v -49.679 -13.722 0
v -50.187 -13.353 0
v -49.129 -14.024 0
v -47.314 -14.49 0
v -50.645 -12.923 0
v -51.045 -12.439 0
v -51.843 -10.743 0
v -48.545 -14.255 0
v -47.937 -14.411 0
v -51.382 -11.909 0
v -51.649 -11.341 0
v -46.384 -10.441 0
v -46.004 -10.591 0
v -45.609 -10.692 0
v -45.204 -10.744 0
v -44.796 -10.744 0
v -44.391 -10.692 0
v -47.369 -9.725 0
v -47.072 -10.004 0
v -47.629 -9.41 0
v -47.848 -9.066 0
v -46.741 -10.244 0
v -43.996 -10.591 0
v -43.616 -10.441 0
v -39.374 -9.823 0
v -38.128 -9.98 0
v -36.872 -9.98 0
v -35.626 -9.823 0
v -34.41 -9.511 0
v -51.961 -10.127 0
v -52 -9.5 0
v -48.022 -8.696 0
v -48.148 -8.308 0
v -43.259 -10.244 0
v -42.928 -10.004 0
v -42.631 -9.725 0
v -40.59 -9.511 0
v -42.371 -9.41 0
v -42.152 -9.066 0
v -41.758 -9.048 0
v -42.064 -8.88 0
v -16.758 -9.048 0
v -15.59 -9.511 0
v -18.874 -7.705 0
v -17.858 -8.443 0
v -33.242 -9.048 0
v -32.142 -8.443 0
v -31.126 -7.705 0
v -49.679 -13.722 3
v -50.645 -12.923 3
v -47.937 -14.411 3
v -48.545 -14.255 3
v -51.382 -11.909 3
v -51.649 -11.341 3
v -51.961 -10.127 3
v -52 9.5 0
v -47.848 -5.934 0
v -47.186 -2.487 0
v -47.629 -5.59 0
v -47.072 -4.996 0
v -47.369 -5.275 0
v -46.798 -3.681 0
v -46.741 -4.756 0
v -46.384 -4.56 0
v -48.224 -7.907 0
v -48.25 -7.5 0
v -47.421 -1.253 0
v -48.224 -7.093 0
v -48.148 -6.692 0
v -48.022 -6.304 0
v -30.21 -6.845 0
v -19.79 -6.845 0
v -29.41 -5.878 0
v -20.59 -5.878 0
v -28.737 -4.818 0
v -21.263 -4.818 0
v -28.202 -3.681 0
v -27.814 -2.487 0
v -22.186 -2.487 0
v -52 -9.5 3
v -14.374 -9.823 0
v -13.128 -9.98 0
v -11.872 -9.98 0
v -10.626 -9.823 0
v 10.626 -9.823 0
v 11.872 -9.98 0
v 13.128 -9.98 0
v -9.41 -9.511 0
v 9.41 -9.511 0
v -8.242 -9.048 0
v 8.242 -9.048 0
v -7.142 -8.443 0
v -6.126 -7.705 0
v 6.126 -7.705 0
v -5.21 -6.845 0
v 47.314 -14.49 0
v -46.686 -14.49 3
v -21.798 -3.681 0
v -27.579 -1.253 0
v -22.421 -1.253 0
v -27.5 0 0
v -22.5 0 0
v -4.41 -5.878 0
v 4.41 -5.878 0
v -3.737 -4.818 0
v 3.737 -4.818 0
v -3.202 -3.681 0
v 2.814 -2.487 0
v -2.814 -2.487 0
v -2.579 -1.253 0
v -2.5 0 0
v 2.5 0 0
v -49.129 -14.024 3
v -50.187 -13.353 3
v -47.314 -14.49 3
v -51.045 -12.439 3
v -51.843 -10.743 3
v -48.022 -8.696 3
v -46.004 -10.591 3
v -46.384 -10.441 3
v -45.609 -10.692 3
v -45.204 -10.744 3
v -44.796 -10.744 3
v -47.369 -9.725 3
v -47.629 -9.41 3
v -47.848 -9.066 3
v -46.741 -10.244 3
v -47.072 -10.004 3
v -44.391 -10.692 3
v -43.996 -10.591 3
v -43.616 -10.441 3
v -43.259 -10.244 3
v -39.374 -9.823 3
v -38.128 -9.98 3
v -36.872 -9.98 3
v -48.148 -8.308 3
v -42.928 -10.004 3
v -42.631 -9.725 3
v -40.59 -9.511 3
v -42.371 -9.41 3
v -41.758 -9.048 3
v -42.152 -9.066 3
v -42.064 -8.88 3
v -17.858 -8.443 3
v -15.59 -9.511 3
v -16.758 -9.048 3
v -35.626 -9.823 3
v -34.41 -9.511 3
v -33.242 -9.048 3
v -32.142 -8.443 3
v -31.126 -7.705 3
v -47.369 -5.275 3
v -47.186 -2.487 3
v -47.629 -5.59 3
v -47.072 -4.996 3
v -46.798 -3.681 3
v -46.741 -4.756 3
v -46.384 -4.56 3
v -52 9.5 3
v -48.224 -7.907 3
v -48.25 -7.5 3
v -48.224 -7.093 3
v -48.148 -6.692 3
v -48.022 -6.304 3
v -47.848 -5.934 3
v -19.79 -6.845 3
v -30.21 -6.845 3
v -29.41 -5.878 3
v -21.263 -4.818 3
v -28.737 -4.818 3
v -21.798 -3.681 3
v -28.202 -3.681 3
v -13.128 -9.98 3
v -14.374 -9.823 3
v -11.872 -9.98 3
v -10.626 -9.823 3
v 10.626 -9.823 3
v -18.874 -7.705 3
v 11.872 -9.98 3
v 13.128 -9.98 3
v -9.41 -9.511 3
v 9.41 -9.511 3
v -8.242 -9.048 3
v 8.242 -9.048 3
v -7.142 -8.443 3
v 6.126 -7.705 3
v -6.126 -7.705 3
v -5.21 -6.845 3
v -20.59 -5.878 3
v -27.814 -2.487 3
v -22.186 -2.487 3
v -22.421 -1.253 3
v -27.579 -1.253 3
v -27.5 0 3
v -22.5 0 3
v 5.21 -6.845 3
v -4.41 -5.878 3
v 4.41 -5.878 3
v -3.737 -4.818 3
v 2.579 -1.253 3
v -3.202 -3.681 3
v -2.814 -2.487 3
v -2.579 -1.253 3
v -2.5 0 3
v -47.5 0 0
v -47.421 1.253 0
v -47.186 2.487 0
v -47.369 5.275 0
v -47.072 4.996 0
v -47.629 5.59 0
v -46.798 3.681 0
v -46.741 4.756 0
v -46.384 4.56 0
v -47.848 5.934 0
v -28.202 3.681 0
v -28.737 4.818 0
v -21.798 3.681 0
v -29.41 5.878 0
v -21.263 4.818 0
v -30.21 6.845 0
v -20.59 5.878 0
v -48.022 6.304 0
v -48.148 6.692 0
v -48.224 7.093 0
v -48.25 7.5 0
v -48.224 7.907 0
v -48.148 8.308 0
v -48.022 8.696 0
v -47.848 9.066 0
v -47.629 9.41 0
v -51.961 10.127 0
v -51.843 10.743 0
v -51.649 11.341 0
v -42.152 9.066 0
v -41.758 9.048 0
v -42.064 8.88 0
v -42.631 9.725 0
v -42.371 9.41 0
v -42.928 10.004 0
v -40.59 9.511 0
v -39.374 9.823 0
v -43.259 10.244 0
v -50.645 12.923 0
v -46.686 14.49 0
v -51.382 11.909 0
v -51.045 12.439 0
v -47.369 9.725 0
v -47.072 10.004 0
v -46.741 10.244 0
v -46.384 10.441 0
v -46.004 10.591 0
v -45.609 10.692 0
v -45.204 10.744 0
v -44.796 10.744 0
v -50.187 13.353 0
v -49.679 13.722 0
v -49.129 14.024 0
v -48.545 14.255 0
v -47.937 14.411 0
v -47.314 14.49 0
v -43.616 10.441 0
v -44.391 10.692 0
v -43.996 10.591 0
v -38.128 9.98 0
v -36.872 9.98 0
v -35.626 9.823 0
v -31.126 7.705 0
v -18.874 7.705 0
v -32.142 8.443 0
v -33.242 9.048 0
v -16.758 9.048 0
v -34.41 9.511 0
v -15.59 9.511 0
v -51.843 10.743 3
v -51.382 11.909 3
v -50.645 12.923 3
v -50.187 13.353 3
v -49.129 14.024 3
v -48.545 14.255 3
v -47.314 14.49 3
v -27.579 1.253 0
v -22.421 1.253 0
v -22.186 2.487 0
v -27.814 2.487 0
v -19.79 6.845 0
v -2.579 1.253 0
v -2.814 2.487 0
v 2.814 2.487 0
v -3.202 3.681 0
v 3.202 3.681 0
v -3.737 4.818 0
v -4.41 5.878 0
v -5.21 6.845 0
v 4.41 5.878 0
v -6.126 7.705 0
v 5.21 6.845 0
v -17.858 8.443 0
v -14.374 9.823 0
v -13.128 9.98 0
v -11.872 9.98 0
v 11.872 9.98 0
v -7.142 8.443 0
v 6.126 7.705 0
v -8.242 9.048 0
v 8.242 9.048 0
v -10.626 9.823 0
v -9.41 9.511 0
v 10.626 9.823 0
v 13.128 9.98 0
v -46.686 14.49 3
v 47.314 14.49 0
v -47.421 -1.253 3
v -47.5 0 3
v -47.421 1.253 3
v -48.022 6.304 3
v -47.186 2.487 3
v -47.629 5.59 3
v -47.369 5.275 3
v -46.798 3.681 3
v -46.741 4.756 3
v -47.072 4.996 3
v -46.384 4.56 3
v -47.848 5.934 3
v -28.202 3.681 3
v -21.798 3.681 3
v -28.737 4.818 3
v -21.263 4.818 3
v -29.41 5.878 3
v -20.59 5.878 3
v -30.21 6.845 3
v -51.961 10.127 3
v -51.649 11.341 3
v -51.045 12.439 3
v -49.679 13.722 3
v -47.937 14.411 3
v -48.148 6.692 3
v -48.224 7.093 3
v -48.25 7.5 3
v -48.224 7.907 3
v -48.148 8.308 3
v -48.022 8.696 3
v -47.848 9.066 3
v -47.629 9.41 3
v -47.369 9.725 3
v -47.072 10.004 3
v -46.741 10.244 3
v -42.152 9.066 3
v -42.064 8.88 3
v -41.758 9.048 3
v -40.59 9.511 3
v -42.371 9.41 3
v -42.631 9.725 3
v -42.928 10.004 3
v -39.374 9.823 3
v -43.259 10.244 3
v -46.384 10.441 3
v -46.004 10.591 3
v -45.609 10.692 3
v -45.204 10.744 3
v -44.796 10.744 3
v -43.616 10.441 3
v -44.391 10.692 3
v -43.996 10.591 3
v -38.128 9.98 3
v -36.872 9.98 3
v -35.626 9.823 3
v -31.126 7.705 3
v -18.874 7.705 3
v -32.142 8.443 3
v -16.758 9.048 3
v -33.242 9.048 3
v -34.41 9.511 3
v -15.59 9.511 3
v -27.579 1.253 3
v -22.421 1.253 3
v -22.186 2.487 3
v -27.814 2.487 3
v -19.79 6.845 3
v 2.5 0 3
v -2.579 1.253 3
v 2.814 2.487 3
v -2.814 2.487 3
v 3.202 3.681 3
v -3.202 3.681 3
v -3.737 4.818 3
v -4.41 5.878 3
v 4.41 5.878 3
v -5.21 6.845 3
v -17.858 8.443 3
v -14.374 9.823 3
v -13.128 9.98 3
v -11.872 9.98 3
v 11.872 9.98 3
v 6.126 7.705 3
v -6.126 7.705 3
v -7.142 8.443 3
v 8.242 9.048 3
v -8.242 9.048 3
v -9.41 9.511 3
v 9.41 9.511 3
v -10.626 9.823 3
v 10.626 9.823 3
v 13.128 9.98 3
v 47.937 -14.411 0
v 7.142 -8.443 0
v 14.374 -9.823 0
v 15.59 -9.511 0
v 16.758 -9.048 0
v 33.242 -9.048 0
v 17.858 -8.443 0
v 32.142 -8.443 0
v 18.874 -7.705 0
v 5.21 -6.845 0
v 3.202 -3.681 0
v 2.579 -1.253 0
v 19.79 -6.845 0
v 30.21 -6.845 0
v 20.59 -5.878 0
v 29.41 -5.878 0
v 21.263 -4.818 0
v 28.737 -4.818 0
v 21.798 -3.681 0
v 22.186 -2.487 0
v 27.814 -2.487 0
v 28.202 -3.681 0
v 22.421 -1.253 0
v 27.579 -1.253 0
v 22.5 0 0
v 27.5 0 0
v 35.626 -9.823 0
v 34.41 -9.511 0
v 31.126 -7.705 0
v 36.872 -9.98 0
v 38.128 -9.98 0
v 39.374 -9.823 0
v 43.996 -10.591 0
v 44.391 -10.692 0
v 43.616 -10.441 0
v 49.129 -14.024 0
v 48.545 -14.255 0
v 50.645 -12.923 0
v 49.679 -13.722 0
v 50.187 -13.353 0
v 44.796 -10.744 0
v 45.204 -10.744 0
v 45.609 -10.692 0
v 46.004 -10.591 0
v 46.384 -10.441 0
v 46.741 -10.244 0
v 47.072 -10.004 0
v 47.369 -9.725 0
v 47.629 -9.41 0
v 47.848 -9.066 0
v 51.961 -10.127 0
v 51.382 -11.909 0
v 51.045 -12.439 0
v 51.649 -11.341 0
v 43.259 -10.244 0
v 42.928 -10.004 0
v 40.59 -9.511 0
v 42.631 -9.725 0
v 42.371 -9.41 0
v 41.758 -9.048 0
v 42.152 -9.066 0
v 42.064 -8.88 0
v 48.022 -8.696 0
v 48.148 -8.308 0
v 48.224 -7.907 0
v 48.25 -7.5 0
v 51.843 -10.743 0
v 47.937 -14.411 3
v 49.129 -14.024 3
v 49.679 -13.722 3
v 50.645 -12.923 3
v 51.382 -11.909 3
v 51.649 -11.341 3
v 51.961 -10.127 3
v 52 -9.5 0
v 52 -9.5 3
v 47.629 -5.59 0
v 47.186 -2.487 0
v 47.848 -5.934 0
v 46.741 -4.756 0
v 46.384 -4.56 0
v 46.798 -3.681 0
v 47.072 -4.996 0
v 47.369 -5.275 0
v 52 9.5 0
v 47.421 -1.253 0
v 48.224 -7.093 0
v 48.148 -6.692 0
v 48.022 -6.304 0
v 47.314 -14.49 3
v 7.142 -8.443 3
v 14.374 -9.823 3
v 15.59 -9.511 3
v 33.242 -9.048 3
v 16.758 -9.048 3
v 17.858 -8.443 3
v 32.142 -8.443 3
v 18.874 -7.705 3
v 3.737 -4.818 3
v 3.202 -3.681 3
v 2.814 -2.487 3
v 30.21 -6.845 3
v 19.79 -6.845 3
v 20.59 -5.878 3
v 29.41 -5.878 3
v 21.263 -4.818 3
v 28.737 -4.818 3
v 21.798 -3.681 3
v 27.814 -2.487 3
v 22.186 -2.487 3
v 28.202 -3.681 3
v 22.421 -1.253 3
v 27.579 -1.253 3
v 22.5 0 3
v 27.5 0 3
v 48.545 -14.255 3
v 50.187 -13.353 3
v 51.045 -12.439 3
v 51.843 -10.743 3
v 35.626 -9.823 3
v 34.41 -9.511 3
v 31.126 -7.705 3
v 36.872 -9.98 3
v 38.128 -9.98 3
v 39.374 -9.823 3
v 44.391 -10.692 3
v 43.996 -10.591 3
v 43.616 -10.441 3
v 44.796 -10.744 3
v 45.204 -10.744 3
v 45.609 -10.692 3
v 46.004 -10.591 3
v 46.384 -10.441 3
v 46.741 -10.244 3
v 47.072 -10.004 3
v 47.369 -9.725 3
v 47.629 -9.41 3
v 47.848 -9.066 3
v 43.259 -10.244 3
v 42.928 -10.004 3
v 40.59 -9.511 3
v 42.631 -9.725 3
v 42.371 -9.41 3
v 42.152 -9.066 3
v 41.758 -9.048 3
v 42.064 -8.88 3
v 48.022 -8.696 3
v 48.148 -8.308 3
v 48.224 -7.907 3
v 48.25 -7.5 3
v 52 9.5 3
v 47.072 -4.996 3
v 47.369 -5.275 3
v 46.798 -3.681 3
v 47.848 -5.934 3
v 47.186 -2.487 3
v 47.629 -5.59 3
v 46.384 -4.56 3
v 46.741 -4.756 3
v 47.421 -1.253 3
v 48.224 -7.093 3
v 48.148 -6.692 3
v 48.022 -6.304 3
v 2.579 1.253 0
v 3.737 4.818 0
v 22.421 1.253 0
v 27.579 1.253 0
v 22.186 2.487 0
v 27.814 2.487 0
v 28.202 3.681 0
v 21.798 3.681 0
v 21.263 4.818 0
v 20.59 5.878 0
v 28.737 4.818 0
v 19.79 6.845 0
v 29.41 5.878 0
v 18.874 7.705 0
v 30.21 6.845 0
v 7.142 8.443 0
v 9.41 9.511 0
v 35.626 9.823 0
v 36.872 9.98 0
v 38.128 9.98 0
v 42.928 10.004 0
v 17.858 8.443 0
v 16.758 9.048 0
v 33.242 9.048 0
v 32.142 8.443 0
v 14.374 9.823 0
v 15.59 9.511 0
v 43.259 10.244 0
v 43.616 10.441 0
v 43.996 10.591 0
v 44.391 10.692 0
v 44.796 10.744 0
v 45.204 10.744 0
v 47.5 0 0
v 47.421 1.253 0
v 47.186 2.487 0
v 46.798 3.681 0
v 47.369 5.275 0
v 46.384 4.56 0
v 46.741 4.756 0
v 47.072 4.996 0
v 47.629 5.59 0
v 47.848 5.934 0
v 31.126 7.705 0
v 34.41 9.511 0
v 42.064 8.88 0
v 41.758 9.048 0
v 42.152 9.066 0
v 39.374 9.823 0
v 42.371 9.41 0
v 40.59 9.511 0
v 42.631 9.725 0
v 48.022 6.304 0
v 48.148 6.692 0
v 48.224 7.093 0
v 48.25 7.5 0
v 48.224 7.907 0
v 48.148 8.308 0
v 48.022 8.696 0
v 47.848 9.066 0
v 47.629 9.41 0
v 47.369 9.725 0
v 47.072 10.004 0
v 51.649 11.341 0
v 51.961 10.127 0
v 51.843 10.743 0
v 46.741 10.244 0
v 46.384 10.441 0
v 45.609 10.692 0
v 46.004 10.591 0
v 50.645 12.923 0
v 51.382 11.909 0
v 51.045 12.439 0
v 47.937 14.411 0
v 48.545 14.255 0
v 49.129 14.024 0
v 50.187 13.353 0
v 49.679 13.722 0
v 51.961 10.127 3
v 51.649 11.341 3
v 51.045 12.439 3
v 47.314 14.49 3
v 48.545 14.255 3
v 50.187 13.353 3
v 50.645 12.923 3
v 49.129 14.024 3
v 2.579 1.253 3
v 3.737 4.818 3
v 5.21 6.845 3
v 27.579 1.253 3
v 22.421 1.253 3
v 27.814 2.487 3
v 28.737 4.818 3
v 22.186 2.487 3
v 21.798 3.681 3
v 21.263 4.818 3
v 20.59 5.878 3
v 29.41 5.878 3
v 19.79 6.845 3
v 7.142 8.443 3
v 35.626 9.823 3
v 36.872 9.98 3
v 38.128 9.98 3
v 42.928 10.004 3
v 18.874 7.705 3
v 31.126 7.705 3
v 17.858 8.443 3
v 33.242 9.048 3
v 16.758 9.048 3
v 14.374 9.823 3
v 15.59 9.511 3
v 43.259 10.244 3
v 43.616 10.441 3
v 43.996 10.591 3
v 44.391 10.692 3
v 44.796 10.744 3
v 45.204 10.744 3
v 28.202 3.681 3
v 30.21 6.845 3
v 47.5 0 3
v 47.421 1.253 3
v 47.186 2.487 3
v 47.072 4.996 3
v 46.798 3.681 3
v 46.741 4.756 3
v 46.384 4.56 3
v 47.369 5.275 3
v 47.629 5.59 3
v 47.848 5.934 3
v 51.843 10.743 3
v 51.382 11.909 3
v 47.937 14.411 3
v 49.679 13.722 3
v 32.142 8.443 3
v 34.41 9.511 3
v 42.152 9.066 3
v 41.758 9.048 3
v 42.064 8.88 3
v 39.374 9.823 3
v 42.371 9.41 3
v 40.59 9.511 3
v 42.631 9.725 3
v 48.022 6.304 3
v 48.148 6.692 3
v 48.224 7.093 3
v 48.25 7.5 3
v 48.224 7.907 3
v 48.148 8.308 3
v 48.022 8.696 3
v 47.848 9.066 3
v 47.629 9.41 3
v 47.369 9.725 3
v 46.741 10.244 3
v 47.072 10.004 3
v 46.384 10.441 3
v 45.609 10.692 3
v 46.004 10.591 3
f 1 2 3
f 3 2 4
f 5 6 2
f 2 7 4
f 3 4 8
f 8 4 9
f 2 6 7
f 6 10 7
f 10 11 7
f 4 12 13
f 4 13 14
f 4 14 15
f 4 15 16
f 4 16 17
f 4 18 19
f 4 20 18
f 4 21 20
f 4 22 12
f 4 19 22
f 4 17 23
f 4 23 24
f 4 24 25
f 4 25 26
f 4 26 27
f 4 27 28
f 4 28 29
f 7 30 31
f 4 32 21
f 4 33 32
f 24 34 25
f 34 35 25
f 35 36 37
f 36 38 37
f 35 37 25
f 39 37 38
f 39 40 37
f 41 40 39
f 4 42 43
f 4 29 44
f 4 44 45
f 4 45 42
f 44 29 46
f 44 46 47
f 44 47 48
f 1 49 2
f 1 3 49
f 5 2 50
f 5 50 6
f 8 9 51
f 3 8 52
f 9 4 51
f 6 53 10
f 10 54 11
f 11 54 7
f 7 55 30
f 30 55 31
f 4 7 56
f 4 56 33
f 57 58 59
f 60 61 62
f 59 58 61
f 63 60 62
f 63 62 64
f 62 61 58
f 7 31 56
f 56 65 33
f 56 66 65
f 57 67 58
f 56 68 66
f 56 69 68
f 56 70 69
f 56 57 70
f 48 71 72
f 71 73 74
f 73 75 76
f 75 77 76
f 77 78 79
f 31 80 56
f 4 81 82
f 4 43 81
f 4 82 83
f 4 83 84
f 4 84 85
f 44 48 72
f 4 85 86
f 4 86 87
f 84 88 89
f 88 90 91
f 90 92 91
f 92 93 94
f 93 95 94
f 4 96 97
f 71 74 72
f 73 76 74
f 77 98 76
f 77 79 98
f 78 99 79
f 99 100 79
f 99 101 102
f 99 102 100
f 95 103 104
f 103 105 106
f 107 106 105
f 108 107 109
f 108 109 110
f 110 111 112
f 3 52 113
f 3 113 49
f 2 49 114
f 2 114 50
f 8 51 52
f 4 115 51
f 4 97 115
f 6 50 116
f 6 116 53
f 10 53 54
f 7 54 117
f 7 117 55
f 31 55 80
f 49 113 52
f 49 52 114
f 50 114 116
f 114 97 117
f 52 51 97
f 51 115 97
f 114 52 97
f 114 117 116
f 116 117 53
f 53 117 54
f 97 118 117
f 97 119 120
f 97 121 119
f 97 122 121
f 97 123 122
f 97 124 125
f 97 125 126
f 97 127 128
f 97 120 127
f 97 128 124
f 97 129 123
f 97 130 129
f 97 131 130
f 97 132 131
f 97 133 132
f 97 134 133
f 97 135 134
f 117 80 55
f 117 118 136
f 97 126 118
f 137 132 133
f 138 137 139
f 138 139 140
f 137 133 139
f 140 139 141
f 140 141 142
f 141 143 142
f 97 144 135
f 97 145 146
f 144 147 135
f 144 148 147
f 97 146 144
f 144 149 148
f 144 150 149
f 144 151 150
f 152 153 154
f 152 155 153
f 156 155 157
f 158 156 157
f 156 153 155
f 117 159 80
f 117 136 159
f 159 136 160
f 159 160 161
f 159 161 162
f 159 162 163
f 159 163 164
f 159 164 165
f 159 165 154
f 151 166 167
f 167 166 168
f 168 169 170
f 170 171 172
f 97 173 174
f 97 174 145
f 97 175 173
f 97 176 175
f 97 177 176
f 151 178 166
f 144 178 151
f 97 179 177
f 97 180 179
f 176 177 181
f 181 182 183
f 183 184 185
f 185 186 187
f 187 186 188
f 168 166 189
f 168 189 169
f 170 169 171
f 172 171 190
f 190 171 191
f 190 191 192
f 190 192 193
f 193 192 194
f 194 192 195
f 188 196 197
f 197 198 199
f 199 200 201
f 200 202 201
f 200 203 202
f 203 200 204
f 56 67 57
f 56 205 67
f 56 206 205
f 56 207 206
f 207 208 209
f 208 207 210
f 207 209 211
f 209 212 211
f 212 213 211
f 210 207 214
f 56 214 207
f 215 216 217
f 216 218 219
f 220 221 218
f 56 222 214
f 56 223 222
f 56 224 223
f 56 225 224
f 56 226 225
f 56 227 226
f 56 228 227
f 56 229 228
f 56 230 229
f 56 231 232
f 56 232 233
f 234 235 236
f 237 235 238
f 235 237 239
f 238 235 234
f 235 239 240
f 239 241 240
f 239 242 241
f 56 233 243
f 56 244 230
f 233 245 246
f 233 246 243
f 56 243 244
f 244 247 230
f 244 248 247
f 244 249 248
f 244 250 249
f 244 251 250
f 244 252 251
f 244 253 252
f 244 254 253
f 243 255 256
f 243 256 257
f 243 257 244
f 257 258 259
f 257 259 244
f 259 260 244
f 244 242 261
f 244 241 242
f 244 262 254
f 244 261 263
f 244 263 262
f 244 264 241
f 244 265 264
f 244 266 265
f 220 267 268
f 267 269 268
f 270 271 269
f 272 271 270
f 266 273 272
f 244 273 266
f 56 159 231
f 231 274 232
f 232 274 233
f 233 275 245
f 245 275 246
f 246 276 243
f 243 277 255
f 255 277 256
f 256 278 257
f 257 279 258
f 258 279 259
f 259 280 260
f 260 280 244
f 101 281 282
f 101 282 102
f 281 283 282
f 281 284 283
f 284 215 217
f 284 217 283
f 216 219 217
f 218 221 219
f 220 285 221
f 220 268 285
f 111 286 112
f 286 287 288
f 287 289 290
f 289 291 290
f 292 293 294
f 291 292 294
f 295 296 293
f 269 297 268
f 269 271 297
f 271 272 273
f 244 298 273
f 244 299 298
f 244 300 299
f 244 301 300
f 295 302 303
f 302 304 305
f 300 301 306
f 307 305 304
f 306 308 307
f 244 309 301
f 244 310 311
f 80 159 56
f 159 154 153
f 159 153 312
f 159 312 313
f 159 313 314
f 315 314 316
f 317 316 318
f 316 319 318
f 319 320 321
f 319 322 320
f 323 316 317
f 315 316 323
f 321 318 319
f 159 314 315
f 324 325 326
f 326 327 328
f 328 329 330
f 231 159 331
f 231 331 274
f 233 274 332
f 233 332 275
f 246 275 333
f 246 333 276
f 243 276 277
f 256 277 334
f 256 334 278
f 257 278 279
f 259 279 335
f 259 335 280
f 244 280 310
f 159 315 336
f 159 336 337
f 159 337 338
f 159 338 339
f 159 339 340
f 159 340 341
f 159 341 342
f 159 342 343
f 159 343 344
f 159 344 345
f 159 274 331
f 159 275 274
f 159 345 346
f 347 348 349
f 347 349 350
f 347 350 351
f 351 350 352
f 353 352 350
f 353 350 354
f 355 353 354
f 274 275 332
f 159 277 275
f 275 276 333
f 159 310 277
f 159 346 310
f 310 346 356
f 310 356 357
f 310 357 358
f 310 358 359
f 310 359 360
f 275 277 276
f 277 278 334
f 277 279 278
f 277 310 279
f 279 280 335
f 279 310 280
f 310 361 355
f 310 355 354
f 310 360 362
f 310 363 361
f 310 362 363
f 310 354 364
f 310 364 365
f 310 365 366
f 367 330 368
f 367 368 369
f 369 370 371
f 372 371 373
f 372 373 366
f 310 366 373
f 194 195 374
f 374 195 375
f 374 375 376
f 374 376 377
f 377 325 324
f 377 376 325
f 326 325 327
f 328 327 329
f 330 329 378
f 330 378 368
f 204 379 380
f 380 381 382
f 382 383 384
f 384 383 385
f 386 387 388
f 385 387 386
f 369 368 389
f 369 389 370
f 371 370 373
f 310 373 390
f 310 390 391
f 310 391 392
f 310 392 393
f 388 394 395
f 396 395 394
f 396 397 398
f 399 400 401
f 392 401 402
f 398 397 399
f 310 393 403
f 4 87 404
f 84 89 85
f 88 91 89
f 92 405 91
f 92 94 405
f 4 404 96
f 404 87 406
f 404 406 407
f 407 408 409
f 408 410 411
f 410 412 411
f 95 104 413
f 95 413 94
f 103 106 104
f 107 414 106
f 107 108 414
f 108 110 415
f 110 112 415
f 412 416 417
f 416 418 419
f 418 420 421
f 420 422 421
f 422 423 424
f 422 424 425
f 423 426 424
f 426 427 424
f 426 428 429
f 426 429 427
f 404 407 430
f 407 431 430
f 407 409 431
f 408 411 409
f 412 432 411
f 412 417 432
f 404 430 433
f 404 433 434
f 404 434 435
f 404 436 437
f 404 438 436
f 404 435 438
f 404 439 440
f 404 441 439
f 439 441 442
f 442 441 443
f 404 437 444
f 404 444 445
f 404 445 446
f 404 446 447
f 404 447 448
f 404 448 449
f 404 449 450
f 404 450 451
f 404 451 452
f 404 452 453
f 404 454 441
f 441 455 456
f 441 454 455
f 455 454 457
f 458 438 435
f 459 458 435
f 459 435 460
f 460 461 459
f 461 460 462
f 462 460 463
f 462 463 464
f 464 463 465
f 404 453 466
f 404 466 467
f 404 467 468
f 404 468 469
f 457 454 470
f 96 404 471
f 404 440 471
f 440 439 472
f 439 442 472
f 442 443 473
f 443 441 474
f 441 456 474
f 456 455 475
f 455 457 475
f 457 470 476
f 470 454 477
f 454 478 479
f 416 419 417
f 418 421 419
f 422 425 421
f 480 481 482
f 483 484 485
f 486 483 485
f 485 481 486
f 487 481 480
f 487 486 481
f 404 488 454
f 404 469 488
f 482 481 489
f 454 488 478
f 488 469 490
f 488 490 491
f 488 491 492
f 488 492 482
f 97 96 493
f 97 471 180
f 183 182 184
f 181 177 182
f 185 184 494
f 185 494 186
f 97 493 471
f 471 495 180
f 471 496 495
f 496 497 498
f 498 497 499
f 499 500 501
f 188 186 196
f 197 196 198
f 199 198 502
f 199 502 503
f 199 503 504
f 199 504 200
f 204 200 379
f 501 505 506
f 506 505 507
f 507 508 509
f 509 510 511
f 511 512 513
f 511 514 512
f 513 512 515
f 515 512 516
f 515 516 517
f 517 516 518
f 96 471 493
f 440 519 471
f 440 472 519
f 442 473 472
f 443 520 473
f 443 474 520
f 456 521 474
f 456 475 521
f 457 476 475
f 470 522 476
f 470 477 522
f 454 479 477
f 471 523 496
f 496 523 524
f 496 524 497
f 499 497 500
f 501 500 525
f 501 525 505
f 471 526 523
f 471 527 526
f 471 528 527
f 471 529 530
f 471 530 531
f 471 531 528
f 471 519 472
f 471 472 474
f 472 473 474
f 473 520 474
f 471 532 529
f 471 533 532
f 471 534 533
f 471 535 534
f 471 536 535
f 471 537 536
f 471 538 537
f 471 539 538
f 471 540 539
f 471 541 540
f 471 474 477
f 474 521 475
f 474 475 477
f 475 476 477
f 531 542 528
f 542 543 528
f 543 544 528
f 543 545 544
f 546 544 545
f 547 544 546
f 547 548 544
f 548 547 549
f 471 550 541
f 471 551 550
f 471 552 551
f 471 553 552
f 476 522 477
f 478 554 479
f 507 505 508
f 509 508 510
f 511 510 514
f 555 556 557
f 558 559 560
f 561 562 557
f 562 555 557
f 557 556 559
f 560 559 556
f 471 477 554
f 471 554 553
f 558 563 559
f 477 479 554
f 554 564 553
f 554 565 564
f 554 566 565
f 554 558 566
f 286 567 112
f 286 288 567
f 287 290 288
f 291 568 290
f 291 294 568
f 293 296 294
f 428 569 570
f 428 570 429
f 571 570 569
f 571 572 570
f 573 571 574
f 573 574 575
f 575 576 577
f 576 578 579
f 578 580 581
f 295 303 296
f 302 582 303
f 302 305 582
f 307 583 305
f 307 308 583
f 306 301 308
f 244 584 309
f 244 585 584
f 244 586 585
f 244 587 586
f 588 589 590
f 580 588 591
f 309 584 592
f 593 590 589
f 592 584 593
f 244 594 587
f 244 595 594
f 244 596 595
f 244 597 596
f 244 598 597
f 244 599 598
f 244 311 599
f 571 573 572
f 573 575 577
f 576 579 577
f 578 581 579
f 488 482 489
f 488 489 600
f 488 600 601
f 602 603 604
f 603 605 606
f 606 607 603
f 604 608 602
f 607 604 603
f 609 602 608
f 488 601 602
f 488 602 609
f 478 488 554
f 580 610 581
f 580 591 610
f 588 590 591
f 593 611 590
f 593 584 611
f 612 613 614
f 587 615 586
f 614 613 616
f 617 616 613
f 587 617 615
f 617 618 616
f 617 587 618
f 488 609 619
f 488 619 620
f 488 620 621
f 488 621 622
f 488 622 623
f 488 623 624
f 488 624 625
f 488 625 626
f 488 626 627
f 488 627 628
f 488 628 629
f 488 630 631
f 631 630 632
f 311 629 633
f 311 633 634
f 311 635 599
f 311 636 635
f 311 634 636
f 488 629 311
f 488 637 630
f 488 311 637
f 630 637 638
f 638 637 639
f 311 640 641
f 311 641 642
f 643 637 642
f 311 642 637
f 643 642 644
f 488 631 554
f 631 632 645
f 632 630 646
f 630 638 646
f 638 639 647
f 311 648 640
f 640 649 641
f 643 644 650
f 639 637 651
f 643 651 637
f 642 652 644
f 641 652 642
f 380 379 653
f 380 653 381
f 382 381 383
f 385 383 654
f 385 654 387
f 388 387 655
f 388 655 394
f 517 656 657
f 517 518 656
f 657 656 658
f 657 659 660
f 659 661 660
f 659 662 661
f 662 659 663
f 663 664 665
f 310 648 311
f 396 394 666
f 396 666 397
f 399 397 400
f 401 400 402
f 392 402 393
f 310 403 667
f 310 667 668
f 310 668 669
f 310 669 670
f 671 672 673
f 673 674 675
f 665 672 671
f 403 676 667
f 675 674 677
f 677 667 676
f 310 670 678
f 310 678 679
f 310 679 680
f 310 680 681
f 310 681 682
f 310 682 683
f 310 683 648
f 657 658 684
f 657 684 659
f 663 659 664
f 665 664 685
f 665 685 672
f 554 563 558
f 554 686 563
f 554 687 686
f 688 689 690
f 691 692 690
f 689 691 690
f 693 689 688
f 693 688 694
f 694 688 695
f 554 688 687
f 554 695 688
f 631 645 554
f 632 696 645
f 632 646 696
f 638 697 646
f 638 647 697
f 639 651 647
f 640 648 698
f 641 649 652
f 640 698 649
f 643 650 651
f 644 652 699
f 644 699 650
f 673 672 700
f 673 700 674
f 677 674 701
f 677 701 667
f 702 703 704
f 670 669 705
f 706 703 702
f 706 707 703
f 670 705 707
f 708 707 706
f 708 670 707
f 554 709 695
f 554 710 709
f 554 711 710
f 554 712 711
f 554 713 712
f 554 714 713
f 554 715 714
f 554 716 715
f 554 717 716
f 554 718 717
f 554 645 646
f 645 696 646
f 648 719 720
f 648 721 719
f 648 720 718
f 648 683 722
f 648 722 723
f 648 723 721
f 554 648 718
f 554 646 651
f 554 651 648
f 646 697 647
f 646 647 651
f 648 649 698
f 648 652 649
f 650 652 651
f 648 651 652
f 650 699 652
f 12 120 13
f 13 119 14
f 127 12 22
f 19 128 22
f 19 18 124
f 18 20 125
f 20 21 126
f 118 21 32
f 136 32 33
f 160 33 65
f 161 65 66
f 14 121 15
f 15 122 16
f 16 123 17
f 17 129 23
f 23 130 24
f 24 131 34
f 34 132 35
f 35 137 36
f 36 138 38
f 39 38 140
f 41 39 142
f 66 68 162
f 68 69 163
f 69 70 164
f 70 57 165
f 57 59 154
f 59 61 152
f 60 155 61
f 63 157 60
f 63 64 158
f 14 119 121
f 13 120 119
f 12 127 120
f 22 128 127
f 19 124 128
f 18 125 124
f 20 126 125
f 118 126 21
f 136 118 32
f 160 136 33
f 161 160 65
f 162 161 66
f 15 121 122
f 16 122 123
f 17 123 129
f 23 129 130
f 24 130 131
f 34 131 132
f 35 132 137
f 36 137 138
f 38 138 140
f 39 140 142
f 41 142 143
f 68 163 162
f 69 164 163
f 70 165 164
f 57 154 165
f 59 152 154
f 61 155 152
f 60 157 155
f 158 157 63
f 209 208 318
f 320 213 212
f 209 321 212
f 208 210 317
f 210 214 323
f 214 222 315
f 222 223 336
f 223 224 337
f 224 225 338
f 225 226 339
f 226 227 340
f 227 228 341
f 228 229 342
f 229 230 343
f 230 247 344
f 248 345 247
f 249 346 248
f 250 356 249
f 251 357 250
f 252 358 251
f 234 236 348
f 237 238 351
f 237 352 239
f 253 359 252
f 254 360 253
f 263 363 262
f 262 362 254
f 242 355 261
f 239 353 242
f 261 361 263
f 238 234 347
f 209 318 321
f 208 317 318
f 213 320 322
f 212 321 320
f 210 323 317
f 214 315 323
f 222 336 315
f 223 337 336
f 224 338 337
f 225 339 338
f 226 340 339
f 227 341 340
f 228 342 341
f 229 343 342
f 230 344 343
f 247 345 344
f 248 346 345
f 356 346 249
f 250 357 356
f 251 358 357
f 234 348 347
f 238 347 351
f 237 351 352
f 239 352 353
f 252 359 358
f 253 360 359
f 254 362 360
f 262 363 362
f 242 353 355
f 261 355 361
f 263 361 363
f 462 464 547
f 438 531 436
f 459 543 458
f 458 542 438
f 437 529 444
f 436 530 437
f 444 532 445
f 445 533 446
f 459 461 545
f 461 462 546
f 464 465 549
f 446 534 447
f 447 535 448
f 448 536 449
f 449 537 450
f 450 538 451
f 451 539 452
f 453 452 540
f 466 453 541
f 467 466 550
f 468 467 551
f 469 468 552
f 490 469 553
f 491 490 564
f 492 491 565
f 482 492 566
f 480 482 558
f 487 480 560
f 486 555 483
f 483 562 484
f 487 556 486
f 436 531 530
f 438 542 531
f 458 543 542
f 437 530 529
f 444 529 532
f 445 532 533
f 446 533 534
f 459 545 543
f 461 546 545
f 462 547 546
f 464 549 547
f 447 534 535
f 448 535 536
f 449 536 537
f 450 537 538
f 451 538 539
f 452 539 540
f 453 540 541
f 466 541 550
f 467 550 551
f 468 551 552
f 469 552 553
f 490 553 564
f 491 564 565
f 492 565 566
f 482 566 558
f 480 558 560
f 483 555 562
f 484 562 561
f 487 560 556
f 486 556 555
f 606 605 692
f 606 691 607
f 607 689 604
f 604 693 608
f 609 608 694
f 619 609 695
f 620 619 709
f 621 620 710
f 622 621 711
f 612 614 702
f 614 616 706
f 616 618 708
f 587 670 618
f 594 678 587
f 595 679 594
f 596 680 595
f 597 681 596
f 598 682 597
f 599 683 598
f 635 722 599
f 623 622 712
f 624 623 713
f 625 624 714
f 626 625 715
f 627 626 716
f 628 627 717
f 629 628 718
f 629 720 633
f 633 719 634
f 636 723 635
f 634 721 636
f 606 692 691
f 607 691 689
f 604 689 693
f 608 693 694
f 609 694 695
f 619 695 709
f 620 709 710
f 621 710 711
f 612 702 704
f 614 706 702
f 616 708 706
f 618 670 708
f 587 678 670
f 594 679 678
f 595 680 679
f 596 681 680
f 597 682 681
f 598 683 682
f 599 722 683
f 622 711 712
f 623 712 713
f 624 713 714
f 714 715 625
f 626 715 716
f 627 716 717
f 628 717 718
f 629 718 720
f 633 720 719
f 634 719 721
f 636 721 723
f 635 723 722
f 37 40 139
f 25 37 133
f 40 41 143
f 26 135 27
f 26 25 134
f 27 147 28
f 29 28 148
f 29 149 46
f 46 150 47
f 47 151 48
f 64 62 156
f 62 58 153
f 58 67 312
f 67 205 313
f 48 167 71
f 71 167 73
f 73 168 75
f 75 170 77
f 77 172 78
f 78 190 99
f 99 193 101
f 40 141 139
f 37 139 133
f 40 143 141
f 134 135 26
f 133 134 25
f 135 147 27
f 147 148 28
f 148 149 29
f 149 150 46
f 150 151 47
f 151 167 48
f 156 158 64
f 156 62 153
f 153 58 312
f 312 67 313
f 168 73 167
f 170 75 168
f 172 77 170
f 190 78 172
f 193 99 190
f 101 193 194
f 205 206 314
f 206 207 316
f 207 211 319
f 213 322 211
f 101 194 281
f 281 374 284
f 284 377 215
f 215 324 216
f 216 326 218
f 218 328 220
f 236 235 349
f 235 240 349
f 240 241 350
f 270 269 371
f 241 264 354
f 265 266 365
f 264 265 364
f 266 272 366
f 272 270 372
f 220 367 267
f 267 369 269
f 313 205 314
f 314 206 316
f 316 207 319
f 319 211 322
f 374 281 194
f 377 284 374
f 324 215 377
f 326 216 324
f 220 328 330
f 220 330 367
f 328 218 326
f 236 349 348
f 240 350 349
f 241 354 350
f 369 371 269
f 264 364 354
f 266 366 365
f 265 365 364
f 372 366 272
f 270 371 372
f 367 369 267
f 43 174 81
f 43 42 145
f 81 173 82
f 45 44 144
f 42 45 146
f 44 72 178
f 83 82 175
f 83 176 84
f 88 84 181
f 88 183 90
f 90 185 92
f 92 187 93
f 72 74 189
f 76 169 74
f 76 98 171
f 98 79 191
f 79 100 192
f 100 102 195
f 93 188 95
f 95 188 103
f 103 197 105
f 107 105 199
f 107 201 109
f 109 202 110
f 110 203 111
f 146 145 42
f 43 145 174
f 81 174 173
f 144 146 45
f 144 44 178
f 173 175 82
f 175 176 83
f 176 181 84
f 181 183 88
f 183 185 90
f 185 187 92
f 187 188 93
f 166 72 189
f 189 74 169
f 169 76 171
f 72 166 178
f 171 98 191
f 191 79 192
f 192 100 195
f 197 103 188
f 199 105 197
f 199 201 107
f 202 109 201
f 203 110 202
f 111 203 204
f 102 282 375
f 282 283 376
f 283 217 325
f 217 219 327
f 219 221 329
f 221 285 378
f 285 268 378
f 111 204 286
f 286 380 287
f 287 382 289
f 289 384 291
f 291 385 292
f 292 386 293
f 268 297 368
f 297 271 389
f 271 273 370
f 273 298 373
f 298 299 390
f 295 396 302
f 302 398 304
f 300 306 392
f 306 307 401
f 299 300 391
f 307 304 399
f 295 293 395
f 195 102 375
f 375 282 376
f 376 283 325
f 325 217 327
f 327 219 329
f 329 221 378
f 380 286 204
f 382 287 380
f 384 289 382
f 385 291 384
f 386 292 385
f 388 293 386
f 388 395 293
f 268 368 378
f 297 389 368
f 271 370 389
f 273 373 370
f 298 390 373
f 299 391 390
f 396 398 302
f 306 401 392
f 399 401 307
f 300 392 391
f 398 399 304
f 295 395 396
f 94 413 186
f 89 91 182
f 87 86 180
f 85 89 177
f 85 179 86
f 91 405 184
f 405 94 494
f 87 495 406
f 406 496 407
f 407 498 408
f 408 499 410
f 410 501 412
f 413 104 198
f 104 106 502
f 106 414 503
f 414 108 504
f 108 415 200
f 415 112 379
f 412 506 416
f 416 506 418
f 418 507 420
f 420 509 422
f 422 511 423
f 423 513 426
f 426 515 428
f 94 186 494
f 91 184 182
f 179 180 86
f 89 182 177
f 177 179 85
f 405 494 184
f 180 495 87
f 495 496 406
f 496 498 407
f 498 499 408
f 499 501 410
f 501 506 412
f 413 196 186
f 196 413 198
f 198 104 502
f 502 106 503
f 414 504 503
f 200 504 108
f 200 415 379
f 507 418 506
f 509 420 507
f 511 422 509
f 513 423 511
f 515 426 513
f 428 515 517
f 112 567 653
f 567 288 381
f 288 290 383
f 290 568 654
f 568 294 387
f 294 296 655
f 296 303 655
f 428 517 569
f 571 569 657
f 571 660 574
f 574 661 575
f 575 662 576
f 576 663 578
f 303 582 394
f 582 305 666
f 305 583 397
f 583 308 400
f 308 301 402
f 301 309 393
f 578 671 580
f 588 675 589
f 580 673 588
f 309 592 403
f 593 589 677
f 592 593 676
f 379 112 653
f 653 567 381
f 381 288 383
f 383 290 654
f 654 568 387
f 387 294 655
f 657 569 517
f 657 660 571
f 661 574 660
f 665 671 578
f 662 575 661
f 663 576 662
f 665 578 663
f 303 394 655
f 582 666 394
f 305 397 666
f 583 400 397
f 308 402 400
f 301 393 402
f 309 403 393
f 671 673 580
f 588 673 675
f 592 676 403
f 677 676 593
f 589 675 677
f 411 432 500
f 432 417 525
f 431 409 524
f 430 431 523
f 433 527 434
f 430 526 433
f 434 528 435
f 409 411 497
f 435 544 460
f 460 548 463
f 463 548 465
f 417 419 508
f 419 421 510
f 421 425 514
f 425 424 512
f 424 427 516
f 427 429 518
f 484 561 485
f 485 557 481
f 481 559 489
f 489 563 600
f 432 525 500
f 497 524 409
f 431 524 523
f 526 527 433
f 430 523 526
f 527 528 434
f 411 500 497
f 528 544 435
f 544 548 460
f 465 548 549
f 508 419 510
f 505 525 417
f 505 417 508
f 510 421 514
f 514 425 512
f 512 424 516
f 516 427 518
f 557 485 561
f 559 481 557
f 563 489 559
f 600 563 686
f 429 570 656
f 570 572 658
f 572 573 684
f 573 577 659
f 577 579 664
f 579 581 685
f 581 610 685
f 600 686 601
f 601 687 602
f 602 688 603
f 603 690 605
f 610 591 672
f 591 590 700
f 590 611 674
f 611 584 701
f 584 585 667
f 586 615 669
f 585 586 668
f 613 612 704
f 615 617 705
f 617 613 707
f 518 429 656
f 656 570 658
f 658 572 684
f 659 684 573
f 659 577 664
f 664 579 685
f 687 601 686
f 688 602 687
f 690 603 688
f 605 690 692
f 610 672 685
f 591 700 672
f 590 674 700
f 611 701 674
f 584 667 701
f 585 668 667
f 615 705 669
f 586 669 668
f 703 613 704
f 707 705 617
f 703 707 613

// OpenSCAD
$fn = 50;

difference() {
	union() {
		hull() {
			translate(v = [-47.0, 9.5, 0]) {
				cylinder(h = 3, r = 5);
			}
			translate(v = [47.0, 9.5, 0]) {
				cylinder(h = 3, r = 5);
			}
			translate(v = [-47.0, -9.5, 0]) {
				cylinder(h = 3, r = 5);
			}
			translate(v = [47.0, -9.5, 0]) {
				cylinder(h = 3, r = 5);
			}
		}
	}
	union() {
		translate(v = [-45.0, -7.5, -100.0]) {
			cylinder(h = 200, r = 3.25);
		}
		translate(v = [-45.0, 7.5, -100.0]) {
			cylinder(h = 200, r = 3.25);
		}
		translate(v = [45.0, -7.5, -100.0]) {
			cylinder(h = 200, r = 3.25);
		}
		translate(v = [45.0, 7.5, -100.0]) {
			cylinder(h = 200, r = 3.25);
		}
		translate(v = [-45.0, -7.5, -100.0]) {
			cylinder(h = 200, r = 1.8);
		}
		translate(v = [-45.0, 7.5, -100.0]) {
			cylinder(h = 200, r = 1.8);
		}
		translate(v = [45.0, -7.5, -100.0]) {
			cylinder(h = 200, r = 1.8);
		}
		translate(v = [45.0, 7.5, -100.0]) {
			cylinder(h = 200, r = 1.8);
		}
		translate(v = [-37.5, 0, 0.0]) {
			cylinder(h = 3, r = 10.0);
		}
		translate(v = [-12.5, 0, 0.0]) {
			cylinder(h = 3, r = 10.0);
		}
		translate(v = [12.5, 0, 0.0]) {
			cylinder(h = 3, r = 10.0);
		}
		translate(v = [37.5, 0, 0.0]) {
			cylinder(h = 3, r = 10.0);
		}
	}
}
